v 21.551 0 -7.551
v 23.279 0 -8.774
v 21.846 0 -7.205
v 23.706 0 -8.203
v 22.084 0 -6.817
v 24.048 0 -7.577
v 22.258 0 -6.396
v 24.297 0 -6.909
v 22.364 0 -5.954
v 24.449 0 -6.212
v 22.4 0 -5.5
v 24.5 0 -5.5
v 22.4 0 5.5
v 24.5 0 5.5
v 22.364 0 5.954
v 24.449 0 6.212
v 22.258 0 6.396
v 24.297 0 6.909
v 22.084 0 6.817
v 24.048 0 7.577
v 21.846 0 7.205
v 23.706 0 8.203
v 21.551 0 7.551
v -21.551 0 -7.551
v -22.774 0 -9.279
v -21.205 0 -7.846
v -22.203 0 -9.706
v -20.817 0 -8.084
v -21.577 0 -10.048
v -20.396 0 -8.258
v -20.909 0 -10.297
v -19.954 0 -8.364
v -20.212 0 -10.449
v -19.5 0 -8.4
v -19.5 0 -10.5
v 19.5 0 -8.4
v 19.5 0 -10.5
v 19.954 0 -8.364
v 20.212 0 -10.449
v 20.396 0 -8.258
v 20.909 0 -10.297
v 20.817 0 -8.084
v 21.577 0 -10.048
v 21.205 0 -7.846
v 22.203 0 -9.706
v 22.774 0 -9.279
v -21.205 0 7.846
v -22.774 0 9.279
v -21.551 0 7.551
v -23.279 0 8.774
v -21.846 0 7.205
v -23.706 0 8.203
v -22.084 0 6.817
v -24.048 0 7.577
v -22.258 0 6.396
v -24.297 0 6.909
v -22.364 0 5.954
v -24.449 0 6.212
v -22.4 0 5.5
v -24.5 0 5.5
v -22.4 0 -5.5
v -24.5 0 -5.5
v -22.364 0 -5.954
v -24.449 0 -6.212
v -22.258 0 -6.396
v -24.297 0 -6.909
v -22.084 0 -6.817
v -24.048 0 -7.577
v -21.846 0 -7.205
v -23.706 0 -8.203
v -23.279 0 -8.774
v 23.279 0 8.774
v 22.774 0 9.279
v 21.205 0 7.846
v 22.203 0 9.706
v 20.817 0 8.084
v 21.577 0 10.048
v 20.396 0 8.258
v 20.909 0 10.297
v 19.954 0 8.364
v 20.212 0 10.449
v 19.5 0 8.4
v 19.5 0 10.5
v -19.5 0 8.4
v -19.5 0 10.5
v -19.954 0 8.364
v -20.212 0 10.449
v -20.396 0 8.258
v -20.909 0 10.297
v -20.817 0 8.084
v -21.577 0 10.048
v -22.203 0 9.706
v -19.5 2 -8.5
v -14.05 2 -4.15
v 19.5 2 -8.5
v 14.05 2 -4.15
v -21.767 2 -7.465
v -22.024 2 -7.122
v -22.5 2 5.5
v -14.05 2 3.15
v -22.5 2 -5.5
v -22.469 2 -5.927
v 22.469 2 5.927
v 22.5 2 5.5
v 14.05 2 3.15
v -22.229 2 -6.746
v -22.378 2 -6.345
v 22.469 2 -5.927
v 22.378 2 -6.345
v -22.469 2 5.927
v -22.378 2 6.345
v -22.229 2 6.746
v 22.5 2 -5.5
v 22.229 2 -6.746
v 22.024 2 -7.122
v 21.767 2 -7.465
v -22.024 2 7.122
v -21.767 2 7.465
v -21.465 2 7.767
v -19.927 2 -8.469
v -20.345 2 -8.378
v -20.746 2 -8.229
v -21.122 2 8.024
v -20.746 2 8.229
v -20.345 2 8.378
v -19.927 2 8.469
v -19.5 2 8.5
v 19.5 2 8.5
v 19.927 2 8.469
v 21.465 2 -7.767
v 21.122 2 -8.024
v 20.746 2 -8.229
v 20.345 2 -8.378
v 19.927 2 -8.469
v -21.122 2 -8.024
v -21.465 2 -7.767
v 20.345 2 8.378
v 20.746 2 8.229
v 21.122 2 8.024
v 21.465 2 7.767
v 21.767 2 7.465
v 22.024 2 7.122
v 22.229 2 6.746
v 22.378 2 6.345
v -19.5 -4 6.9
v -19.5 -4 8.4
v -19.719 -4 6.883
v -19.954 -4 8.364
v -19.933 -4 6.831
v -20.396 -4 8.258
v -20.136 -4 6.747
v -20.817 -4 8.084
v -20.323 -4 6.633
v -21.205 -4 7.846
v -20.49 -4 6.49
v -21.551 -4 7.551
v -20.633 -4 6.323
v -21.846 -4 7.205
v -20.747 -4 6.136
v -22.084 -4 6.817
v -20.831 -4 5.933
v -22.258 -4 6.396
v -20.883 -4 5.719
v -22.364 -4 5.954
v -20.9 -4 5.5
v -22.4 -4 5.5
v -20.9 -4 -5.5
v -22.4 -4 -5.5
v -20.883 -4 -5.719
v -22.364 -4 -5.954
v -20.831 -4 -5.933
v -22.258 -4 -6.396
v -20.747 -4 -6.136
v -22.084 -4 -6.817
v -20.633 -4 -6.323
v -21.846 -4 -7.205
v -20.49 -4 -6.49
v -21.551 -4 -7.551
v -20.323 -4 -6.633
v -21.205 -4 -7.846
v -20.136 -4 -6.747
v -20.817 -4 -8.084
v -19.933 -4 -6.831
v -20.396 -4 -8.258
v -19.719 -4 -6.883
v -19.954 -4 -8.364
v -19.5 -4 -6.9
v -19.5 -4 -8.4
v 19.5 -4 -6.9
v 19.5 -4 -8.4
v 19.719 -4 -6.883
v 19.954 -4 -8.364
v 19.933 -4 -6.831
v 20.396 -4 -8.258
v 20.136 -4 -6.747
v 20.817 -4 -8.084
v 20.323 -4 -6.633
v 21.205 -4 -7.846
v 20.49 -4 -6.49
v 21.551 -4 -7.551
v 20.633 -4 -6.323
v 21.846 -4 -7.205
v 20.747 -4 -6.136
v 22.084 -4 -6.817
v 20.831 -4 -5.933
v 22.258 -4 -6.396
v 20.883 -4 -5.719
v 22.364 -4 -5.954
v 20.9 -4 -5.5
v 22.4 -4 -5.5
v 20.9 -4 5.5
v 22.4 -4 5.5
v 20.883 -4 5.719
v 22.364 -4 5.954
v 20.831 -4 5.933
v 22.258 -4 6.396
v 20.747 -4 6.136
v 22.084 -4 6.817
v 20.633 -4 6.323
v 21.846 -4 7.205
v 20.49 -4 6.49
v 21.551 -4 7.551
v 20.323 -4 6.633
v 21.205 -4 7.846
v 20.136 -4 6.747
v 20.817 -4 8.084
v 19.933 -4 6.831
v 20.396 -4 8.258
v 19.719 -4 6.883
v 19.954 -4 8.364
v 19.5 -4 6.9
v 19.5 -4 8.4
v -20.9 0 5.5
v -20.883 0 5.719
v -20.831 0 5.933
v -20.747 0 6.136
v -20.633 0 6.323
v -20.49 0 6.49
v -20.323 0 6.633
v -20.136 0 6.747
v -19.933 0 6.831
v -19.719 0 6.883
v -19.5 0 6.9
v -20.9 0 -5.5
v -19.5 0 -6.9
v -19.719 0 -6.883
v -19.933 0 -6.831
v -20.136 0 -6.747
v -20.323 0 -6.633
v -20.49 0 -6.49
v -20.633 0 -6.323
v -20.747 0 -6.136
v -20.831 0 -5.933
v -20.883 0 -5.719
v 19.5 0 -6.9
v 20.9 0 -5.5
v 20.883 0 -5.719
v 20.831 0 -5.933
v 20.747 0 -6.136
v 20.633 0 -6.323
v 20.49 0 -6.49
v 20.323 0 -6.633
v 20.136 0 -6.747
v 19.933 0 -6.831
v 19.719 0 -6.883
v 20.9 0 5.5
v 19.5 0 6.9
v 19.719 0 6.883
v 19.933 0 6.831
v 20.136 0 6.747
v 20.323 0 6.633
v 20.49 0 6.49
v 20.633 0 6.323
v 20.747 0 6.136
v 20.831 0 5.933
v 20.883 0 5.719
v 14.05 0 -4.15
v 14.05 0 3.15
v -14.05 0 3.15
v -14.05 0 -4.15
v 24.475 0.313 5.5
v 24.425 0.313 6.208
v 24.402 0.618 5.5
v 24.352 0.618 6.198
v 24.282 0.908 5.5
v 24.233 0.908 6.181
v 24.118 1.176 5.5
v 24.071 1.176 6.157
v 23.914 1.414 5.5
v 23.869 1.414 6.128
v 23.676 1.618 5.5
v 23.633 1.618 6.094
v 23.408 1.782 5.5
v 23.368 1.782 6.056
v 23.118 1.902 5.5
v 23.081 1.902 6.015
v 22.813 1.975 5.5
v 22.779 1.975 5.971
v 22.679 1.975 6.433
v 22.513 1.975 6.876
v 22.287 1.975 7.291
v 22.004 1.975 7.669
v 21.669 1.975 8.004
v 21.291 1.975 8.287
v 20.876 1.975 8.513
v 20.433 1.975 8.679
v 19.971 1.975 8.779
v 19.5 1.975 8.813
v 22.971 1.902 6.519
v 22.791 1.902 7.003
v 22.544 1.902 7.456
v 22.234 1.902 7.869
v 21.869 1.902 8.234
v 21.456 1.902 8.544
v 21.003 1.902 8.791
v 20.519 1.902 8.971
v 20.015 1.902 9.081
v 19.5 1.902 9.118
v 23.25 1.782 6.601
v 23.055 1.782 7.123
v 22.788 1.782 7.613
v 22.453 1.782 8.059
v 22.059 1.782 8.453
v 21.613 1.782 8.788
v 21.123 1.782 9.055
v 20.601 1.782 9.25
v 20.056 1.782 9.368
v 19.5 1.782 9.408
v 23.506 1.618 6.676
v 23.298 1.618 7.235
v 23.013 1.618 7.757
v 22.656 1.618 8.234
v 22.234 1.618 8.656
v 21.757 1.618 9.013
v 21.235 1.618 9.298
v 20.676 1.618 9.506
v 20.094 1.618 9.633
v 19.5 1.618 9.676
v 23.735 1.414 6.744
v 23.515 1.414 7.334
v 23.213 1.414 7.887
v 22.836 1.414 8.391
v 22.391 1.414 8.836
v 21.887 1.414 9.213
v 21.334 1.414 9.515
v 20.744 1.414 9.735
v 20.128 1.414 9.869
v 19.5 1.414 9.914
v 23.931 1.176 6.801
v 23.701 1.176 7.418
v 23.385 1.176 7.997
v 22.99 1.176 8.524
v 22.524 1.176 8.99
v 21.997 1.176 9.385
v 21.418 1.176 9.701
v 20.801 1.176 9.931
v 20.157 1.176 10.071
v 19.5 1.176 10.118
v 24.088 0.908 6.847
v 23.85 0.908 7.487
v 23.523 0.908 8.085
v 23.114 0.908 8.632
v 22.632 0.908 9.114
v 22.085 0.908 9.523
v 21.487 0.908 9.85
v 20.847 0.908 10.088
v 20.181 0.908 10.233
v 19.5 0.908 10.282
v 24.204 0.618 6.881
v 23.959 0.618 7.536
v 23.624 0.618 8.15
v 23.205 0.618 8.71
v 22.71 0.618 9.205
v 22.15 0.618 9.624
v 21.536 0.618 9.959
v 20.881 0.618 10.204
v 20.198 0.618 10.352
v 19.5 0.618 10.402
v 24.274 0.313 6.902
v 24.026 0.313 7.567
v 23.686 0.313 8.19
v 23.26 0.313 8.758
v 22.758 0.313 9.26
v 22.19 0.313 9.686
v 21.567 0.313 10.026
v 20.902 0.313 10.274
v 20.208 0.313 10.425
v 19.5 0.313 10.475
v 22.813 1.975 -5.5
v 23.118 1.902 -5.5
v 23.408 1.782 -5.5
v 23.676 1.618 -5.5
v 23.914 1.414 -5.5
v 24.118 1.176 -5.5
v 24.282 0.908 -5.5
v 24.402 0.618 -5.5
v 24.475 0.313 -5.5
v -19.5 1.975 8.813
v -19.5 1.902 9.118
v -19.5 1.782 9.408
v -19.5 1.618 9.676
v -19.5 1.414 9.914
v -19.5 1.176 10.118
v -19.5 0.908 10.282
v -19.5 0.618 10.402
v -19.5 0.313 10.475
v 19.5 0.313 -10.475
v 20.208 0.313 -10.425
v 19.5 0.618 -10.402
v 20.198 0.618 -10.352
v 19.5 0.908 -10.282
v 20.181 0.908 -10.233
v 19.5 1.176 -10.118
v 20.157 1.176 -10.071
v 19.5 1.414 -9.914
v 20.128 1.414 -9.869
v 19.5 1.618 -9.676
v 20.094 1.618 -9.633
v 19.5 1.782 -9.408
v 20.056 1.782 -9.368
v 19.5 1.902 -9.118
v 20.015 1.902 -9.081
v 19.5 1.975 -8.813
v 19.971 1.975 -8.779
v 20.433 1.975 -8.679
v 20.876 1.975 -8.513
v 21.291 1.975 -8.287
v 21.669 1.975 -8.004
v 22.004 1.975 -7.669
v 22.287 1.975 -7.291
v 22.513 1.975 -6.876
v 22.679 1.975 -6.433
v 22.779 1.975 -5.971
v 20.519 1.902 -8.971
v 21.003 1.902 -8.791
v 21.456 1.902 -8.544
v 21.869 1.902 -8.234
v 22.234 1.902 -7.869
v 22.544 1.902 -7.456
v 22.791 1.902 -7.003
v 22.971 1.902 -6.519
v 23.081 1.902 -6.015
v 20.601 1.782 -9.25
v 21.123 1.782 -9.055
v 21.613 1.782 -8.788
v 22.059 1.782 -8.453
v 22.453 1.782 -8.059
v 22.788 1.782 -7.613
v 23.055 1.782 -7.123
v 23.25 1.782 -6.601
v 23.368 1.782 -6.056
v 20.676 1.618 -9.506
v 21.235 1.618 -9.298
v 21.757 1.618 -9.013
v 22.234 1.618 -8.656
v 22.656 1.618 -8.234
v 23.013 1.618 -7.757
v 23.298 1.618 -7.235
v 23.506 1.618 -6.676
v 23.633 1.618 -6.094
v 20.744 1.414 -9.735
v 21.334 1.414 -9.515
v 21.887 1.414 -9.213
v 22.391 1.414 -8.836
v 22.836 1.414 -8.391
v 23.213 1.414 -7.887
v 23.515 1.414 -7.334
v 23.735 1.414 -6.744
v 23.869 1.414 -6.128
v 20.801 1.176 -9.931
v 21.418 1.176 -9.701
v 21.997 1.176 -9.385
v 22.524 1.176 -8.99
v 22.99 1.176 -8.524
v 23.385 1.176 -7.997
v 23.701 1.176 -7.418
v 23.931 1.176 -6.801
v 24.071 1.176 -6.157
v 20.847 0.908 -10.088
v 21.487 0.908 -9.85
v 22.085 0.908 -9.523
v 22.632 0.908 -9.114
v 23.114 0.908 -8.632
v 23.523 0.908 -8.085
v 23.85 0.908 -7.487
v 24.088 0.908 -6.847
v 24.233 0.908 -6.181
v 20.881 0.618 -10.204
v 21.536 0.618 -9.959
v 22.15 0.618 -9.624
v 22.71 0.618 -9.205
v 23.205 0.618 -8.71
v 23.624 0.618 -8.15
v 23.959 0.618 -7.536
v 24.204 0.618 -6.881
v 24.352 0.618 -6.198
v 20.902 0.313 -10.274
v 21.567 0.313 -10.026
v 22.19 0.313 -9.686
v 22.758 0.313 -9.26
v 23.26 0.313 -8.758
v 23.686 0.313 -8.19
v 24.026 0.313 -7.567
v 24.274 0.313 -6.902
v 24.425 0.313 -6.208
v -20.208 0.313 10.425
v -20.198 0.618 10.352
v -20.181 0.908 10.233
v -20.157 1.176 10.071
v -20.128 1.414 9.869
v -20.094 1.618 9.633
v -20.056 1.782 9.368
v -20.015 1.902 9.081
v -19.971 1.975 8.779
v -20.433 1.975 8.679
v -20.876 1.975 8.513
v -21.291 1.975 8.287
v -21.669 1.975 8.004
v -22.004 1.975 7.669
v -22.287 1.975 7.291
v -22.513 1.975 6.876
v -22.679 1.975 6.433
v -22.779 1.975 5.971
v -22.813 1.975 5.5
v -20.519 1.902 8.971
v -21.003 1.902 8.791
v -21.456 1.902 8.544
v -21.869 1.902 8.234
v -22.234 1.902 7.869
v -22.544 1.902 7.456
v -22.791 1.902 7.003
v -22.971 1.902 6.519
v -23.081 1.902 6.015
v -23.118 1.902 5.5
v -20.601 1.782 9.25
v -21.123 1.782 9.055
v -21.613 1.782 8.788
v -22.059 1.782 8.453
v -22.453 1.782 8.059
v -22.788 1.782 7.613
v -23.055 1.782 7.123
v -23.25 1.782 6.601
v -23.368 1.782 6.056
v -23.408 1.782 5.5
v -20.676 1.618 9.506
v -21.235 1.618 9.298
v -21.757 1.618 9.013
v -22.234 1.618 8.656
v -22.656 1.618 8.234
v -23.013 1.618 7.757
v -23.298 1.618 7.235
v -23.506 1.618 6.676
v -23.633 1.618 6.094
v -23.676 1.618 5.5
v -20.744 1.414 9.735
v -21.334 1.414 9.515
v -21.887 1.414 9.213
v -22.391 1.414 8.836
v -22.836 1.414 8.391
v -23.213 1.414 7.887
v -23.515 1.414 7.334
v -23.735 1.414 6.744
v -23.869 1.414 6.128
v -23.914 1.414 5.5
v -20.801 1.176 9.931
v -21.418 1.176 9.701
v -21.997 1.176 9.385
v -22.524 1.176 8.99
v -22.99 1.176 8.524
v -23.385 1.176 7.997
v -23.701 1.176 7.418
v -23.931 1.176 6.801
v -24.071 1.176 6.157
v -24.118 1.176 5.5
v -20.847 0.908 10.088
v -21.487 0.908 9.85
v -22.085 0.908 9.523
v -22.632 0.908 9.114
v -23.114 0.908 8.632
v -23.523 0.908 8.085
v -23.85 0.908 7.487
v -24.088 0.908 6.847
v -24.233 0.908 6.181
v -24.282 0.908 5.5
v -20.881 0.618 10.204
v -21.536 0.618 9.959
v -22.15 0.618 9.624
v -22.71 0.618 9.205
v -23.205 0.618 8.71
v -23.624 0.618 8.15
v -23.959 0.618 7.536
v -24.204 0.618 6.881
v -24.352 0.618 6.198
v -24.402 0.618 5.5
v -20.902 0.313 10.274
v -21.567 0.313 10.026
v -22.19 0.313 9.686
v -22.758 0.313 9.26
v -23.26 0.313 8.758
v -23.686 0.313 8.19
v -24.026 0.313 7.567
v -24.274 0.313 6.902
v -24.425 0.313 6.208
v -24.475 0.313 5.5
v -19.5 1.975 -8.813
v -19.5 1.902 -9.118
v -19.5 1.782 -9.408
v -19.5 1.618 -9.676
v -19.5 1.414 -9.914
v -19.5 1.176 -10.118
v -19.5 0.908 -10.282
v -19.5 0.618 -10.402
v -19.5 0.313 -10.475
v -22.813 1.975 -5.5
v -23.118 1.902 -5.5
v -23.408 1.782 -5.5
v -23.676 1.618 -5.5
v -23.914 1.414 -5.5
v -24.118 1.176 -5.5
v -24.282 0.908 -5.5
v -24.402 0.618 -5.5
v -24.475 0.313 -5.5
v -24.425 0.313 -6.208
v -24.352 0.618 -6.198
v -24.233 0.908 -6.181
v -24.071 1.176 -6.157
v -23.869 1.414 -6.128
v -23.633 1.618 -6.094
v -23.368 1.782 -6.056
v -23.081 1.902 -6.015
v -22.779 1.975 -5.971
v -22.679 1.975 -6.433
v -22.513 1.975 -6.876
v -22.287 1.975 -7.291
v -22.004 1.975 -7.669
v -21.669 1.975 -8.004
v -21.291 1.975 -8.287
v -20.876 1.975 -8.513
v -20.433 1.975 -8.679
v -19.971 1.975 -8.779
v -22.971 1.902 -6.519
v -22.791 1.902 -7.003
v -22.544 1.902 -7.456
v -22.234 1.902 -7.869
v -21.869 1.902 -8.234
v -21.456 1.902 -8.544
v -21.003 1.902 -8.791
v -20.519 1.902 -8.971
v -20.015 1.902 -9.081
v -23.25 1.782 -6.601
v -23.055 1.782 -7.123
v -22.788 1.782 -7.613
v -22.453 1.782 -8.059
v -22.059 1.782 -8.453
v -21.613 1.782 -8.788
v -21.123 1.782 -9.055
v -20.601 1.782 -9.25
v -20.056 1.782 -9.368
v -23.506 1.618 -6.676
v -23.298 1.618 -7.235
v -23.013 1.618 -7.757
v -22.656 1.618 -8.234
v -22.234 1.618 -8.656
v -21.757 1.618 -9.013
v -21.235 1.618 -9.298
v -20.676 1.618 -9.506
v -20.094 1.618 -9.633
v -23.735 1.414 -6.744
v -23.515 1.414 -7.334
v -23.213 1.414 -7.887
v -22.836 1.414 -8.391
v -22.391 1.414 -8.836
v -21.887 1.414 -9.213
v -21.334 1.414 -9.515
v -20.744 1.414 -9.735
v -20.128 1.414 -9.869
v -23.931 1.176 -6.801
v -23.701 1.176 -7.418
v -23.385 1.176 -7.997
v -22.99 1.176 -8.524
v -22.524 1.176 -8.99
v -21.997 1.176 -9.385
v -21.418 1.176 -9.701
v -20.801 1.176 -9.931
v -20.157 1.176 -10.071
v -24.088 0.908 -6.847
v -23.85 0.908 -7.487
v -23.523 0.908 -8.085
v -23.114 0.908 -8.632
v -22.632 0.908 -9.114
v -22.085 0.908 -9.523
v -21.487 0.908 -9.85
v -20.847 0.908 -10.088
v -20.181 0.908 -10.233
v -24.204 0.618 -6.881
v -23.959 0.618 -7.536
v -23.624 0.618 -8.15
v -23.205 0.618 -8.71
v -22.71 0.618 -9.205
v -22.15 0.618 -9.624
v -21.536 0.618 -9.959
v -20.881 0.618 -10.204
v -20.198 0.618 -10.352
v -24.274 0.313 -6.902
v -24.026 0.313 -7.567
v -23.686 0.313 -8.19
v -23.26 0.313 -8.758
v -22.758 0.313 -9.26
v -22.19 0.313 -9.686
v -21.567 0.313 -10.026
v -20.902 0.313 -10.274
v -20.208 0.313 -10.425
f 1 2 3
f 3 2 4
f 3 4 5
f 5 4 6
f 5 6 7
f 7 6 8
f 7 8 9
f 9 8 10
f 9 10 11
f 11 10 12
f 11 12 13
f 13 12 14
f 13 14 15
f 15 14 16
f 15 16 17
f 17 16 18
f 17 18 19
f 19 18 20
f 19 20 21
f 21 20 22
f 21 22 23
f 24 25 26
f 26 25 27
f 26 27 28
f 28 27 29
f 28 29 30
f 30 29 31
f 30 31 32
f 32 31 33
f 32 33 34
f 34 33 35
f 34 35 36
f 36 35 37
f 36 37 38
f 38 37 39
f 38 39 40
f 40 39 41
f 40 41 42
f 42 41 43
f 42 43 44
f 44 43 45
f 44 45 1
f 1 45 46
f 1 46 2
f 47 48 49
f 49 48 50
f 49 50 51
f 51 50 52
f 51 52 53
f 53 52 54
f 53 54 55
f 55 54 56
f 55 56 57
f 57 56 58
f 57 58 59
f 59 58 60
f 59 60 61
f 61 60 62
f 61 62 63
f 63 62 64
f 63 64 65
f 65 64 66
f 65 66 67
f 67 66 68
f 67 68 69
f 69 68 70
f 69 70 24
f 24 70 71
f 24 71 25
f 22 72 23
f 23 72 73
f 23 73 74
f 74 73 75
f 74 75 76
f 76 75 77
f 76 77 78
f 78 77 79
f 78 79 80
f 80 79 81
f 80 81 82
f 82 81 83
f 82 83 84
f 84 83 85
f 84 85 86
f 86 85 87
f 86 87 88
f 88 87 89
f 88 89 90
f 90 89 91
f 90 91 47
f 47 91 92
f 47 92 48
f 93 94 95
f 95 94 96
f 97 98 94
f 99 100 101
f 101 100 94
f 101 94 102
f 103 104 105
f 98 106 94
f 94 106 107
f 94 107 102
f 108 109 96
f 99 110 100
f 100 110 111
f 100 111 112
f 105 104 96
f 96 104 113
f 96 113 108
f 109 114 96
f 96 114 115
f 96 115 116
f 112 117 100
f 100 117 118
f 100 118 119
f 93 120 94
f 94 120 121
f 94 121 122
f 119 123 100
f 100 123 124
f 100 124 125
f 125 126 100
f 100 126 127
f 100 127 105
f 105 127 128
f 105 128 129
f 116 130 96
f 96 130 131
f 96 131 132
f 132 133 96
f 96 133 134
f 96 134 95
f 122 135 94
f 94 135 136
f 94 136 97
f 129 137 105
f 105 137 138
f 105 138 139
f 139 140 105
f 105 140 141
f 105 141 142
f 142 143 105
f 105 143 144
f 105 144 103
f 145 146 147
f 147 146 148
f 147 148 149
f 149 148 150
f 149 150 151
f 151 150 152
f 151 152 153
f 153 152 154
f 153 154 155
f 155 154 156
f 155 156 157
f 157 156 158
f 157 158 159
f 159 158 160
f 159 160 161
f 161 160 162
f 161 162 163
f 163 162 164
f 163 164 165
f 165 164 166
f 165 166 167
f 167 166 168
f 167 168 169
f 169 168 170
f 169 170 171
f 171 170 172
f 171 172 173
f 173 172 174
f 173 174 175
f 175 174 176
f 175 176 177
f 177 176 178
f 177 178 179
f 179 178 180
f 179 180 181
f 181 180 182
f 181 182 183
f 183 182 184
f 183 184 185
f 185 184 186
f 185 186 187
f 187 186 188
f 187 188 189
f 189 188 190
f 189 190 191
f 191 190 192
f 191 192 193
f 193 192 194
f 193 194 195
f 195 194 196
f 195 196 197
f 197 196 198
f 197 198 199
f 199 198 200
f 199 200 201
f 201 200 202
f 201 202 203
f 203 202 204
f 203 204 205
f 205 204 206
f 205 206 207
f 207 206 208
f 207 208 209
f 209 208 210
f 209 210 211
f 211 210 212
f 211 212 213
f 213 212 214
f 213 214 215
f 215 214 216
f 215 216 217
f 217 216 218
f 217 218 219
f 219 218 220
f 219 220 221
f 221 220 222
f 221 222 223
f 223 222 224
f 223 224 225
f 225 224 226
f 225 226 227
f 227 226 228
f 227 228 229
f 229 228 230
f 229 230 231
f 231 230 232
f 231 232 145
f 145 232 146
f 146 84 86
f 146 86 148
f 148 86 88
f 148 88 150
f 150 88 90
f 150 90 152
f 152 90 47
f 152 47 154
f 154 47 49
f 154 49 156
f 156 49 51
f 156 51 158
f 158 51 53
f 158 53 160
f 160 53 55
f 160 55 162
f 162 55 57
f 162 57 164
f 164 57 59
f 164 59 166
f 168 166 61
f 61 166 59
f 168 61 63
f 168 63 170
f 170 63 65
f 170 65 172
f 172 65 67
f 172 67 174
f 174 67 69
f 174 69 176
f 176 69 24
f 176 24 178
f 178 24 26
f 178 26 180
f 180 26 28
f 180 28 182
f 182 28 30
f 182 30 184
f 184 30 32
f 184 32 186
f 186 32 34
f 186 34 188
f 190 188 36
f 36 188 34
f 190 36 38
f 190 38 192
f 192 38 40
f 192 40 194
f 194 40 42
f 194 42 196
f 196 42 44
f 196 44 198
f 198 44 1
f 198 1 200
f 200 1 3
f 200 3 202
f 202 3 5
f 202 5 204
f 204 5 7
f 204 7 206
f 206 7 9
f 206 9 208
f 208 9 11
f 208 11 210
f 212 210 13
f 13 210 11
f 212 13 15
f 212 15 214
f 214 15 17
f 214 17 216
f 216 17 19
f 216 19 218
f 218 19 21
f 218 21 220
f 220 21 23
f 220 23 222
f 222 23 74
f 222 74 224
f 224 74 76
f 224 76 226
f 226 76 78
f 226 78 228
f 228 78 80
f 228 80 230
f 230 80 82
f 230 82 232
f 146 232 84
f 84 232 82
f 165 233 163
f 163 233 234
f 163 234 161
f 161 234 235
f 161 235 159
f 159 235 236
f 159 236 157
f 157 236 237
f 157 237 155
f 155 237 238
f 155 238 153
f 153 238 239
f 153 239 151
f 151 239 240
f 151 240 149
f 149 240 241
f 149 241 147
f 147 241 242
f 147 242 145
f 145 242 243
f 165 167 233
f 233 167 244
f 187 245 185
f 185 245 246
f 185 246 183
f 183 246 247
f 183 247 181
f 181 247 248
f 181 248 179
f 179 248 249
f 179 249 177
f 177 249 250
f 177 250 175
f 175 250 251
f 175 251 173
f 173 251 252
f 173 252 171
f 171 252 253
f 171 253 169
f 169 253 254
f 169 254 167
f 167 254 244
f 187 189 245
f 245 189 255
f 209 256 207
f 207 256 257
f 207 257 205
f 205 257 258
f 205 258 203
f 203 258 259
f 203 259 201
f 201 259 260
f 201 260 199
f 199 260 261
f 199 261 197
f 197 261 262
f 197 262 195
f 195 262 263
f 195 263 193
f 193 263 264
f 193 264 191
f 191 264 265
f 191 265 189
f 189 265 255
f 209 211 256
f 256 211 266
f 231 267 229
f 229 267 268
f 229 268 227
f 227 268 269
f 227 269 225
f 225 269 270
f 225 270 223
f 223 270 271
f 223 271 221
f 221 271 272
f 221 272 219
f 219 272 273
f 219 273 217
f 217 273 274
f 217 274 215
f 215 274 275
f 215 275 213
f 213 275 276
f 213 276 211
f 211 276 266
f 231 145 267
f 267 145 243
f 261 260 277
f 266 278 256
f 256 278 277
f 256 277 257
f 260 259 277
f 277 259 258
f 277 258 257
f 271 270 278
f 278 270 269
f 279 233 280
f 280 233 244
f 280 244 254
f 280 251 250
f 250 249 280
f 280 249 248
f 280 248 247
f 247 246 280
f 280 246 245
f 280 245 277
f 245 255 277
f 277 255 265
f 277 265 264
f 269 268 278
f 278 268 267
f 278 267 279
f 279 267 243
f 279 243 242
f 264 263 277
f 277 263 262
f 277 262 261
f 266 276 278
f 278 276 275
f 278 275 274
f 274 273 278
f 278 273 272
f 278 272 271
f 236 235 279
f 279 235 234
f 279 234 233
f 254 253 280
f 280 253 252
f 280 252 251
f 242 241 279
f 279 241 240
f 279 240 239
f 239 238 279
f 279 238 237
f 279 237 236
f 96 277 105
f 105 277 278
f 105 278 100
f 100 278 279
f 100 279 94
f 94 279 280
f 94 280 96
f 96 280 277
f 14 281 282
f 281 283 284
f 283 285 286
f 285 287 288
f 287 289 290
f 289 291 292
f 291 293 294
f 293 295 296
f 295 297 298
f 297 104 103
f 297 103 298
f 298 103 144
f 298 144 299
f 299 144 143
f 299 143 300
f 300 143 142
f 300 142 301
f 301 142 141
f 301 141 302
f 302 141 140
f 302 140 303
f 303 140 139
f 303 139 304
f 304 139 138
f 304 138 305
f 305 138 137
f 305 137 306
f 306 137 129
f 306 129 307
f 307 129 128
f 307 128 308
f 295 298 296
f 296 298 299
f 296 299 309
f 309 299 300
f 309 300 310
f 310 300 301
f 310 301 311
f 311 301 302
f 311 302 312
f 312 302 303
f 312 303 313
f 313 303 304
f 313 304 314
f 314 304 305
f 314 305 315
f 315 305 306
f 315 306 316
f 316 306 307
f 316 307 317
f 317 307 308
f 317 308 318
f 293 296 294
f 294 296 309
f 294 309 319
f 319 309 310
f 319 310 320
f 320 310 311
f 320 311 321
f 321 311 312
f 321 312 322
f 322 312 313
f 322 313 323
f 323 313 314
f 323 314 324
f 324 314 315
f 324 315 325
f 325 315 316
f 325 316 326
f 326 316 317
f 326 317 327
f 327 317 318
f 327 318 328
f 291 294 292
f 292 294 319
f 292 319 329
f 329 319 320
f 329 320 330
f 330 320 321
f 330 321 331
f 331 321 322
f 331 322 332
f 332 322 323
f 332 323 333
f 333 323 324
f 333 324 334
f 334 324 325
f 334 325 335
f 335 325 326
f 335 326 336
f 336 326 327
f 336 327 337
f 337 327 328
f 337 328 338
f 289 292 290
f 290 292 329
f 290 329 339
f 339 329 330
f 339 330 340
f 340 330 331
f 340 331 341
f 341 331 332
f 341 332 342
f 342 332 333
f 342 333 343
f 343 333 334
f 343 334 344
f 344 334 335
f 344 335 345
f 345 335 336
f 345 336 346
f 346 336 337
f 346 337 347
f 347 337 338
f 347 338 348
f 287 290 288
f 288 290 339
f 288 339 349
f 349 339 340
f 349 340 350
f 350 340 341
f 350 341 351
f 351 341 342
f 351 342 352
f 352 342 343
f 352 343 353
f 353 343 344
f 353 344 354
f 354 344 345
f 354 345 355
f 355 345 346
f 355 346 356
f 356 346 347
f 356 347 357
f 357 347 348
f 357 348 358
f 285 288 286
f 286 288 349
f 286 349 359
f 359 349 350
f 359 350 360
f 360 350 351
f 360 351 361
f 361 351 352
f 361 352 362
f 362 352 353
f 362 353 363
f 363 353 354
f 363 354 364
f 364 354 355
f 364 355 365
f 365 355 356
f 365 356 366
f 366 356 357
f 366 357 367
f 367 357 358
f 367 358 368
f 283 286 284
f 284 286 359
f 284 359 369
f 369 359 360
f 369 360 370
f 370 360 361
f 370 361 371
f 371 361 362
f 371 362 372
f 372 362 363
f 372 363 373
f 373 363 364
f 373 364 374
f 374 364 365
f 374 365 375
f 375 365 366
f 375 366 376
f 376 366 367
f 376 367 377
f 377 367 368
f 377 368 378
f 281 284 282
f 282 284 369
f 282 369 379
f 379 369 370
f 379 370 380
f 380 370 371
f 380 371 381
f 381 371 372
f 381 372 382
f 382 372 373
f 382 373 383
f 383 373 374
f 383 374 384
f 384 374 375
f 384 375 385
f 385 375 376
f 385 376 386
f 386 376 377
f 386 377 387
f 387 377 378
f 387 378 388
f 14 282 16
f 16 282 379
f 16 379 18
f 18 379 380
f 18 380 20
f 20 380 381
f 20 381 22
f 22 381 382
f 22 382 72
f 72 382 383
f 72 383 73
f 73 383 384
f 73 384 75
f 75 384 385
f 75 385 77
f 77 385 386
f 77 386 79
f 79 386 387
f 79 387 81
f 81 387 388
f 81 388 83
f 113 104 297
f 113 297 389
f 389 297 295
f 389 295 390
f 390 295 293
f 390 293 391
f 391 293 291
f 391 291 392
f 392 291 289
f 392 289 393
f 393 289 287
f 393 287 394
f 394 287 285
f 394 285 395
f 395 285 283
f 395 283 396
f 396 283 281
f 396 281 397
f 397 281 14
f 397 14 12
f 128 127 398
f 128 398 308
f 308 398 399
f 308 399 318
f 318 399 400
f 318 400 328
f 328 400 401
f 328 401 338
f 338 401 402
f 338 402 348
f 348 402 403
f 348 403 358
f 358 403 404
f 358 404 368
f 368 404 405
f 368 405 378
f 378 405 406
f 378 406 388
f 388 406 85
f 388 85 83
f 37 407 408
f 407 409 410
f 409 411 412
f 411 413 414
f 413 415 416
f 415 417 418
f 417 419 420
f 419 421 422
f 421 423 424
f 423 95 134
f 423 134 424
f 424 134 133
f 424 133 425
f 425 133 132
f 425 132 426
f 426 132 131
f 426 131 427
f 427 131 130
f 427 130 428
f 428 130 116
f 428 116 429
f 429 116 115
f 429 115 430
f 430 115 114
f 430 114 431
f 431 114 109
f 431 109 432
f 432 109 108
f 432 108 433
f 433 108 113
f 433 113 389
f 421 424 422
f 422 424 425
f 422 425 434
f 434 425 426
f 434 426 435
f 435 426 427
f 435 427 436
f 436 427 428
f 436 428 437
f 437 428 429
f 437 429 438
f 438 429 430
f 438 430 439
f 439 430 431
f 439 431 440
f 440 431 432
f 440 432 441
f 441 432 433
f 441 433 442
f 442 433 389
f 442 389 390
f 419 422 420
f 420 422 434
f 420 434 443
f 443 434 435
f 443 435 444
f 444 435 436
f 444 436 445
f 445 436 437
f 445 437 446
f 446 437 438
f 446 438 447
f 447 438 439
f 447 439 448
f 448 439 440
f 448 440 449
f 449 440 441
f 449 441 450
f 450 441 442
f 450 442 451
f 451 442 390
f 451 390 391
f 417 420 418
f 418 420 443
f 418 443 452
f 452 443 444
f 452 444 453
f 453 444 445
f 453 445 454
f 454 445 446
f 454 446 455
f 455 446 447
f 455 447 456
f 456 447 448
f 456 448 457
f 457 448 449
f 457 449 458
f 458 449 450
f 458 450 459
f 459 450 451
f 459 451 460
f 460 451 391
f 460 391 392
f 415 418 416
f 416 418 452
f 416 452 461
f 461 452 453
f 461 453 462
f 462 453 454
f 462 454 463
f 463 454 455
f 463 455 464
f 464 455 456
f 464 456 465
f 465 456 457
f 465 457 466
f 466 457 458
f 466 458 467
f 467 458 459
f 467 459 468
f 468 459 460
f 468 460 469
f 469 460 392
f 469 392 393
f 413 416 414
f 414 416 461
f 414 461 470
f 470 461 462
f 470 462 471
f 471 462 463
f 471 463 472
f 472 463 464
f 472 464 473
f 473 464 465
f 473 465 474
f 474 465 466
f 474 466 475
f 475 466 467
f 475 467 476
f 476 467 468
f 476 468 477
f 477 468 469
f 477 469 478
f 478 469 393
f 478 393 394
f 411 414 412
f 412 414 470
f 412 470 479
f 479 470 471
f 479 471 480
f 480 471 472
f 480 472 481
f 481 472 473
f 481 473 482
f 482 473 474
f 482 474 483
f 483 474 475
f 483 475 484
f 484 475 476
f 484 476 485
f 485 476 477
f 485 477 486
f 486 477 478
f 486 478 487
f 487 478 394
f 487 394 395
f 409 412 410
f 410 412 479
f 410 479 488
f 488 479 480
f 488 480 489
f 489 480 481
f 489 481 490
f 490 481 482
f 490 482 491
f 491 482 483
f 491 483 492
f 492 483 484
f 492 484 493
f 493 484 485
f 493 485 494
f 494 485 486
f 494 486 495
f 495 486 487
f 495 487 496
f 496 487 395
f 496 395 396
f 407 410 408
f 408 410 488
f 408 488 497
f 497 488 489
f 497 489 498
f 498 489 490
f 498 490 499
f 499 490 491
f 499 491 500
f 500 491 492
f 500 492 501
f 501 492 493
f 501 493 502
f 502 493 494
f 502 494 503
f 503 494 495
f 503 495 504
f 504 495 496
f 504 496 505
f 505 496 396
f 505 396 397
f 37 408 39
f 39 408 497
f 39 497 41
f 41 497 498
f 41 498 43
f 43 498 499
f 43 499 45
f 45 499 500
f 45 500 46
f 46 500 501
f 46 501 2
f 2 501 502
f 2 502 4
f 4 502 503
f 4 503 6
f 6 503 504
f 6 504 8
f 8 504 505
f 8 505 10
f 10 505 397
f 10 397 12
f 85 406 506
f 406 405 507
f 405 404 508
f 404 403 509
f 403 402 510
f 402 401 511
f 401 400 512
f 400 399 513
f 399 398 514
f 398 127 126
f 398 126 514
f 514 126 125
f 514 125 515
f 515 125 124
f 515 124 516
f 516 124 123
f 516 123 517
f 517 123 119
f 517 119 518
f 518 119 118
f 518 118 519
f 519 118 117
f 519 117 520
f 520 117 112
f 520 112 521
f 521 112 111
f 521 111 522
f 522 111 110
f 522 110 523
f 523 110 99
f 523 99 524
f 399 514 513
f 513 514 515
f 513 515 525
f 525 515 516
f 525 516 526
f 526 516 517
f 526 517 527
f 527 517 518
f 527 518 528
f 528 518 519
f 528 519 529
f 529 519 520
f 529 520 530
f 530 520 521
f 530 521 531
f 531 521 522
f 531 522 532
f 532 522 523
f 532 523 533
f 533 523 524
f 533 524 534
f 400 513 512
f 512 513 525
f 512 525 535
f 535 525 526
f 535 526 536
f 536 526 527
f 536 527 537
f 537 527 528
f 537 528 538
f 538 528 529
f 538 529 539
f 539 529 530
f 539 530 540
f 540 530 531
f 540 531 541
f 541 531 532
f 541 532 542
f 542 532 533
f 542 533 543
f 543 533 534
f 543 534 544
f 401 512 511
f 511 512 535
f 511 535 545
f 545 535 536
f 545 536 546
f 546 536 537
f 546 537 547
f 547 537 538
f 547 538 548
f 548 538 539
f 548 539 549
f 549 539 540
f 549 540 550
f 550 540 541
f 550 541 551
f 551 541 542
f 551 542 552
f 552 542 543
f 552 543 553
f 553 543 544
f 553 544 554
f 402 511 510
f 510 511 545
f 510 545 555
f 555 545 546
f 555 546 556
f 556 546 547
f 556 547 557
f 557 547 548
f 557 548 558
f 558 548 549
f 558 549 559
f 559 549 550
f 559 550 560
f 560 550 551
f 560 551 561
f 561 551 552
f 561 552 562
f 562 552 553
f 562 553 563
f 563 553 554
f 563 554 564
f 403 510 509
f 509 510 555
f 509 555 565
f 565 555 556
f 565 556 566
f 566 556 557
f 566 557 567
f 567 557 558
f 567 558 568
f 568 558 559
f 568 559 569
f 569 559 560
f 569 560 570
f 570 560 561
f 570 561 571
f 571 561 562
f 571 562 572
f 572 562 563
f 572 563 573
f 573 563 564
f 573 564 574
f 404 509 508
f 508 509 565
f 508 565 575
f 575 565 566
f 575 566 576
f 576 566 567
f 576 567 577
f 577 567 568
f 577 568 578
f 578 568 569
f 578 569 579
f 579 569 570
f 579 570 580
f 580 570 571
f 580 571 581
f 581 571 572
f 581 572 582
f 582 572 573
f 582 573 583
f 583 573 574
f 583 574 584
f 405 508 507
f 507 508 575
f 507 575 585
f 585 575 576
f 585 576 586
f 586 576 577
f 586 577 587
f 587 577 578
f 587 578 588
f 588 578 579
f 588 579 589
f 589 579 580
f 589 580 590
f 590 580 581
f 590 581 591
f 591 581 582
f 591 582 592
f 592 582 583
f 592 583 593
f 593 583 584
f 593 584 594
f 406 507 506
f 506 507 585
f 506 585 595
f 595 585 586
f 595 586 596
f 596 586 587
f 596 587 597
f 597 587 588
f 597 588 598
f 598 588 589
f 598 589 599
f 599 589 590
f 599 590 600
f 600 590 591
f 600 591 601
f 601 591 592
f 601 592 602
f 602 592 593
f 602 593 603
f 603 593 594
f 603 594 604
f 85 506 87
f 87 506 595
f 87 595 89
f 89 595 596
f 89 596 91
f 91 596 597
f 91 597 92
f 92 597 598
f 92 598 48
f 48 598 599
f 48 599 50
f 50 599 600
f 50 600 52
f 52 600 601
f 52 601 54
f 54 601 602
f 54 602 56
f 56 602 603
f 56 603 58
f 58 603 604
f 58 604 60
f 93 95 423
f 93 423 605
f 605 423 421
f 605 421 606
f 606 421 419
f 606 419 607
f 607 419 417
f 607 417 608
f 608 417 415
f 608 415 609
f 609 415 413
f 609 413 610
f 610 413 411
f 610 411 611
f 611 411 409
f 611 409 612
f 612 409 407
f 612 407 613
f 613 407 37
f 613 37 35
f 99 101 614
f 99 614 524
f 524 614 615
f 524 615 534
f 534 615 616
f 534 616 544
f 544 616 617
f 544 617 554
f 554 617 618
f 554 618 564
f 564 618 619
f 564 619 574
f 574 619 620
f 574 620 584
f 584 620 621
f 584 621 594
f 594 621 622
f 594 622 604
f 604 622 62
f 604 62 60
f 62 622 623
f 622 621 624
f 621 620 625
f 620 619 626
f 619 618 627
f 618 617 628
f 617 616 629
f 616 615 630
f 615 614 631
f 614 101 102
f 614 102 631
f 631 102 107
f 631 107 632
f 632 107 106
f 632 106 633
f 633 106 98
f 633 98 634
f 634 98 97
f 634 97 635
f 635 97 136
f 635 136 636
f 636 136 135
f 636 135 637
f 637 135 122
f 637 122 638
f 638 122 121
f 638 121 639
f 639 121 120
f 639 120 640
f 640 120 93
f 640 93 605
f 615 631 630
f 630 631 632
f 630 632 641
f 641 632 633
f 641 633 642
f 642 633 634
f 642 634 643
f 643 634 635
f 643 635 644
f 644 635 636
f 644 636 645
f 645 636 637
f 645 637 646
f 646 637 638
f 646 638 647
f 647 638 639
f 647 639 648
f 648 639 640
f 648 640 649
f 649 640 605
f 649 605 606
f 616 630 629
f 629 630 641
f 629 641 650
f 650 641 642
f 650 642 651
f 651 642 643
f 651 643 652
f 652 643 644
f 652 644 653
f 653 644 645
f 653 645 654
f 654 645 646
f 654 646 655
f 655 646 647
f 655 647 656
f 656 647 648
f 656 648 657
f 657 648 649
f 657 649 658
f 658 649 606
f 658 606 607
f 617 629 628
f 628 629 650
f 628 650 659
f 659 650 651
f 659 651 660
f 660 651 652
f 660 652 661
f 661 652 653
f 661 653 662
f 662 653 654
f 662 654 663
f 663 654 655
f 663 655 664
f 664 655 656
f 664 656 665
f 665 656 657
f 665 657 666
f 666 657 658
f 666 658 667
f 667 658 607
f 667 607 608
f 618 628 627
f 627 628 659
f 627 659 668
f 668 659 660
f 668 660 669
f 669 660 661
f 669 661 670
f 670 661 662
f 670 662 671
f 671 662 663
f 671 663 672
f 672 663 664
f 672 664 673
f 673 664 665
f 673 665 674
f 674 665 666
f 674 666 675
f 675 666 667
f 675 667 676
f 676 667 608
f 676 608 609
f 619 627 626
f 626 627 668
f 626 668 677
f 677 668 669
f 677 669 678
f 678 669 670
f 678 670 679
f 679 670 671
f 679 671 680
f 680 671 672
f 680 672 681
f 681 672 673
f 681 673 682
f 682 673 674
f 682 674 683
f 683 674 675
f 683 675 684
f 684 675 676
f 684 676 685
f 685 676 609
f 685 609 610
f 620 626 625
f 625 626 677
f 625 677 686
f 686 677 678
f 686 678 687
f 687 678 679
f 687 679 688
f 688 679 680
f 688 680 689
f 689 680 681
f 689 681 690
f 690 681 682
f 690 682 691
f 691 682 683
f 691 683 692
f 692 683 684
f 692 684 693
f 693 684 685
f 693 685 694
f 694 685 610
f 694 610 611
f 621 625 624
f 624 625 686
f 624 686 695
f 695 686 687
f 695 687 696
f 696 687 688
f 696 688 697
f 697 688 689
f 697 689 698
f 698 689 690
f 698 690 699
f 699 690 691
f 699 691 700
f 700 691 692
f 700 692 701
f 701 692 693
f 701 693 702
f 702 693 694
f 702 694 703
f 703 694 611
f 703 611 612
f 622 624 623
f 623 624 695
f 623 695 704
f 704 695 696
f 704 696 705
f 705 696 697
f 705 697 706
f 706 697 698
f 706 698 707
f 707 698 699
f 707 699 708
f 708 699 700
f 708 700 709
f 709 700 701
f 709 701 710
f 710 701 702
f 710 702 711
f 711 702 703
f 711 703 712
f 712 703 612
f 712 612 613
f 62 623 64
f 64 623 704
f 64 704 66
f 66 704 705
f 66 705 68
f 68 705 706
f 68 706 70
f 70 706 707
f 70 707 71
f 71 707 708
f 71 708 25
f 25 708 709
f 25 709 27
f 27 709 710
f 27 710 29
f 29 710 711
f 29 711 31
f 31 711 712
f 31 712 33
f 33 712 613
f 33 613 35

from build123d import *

# Parameters (mm, degrees)
BOSS_EXTRUDE1_DEPTH = 2
BOSS_EXTRUDE2_DEPTH = 4
SKETCH3_W           = 28.1
SKETCH3_H           = 7.3
CUT_EXTRUDE1_DEPTH  = 4
FILLET1_R           = 2


with BuildPart() as part:
    # Sketch1 → Boss-Extrude1 (new body)
    with BuildSketch(Plane(origin=(0, 0, 0), x_dir=(1, 0, 0), z_dir=(0, 1, 0))):
        with BuildLine():
            Line((-19.5, 10.5), (19.5, 10.5))
            ThreePointArc((19.5, 10.5), (23.035533906, 9.035533906), (24.5, 5.5))
            Line((24.5, 5.5), (24.5, -5.5))
            ThreePointArc((24.5, -5.5), (23.035533906, -9.035533906), (19.5, -10.5))
            Line((19.5, -10.5), (-19.5, -10.5))
            ThreePointArc((-19.5, -10.5), (-23.035533906, -9.035533906), (-24.5, -5.5))
            Line((-24.5, -5.5), (-24.5, 5.5))
            ThreePointArc((-24.5, 5.5), (-23.035533906, 9.035533906), (-19.5, 10.5))
        make_face()
    extrude(amount=BOSS_EXTRUDE1_DEPTH)

    # Sketch2 → Boss-Extrude2 (add)
    with BuildSketch(Plane.XZ):
        with BuildLine():
            Line((-22.4, 5.5), (-22.4, -5.5))
            ThreePointArc((-22.4, -5.5), (-21.550609665, -7.550609665), (-19.5, -8.4))
            Line((-19.5, -8.4), (19.5, -8.4))
            ThreePointArc((19.5, -8.4), (21.550609665, -7.550609665), (22.4, -5.5))
            Line((22.4, -5.5), (22.4, 5.5))
            ThreePointArc((22.4, 5.5), (21.550609665, 7.550609665), (19.5, 8.4))
            Line((19.5, 8.4), (-19.5, 8.4))
            ThreePointArc((-19.5, 8.4), (-21.550609665, 7.550609665), (-22.4, 5.5))
        make_face()
        with BuildLine():
            Line((-20.9, 5.5), (-20.9, -5.5))
            ThreePointArc((-20.9, -5.5), (-20.489949494, -6.489949494), (-19.5, -6.9))
            Line((-19.5, -6.9), (19.5, -6.9))
            ThreePointArc((19.5, -6.9), (20.489949494, -6.489949494), (20.9, -5.5))
            Line((20.9, -5.5), (20.9, 5.5))
            ThreePointArc((20.9, 5.5), (20.489949494, 6.489949494), (19.5, 6.9))
            Line((19.5, 6.9), (-19.5, 6.9))
            ThreePointArc((-19.5, 6.9), (-20.489949494, 6.489949494), (-20.9, 5.5))
        make_face(mode=Mode.SUBTRACT)
    extrude(amount=BOSS_EXTRUDE2_DEPTH)

    # Sketch3 → Cut-Extrude1 (cut)
    with BuildSketch(Plane(origin=(0, 2, 0), x_dir=(1, 0, 0), z_dir=(0, 1, 0))):
        with Locations((0, 0.5)):
            Rectangle(SKETCH3_W, SKETCH3_H)
    extrude(amount=-CUT_EXTRUDE1_DEPTH, mode=Mode.SUBTRACT)

    # Fillet1
    fillet1_edges = [part.edges().sort_by_distance(p)[0] for p in [
        (-23.035533906, 2, -9.035533906),
        (0, 2, -10.5),
        (23.035533906, 2, -9.035533906),
        (24.5, 2, 0),
        (23.035533906, 2, 9.035533906),
        (0, 2, 10.5),
        (-23.035533906, 2, 9.035533906),
        (-24.5, 2, 0),
    ]]
    fillet(fillet1_edges, radius=FILLET1_R - 0.0001)  # a hair under: the kernel refuses the full size


solid = part.part
